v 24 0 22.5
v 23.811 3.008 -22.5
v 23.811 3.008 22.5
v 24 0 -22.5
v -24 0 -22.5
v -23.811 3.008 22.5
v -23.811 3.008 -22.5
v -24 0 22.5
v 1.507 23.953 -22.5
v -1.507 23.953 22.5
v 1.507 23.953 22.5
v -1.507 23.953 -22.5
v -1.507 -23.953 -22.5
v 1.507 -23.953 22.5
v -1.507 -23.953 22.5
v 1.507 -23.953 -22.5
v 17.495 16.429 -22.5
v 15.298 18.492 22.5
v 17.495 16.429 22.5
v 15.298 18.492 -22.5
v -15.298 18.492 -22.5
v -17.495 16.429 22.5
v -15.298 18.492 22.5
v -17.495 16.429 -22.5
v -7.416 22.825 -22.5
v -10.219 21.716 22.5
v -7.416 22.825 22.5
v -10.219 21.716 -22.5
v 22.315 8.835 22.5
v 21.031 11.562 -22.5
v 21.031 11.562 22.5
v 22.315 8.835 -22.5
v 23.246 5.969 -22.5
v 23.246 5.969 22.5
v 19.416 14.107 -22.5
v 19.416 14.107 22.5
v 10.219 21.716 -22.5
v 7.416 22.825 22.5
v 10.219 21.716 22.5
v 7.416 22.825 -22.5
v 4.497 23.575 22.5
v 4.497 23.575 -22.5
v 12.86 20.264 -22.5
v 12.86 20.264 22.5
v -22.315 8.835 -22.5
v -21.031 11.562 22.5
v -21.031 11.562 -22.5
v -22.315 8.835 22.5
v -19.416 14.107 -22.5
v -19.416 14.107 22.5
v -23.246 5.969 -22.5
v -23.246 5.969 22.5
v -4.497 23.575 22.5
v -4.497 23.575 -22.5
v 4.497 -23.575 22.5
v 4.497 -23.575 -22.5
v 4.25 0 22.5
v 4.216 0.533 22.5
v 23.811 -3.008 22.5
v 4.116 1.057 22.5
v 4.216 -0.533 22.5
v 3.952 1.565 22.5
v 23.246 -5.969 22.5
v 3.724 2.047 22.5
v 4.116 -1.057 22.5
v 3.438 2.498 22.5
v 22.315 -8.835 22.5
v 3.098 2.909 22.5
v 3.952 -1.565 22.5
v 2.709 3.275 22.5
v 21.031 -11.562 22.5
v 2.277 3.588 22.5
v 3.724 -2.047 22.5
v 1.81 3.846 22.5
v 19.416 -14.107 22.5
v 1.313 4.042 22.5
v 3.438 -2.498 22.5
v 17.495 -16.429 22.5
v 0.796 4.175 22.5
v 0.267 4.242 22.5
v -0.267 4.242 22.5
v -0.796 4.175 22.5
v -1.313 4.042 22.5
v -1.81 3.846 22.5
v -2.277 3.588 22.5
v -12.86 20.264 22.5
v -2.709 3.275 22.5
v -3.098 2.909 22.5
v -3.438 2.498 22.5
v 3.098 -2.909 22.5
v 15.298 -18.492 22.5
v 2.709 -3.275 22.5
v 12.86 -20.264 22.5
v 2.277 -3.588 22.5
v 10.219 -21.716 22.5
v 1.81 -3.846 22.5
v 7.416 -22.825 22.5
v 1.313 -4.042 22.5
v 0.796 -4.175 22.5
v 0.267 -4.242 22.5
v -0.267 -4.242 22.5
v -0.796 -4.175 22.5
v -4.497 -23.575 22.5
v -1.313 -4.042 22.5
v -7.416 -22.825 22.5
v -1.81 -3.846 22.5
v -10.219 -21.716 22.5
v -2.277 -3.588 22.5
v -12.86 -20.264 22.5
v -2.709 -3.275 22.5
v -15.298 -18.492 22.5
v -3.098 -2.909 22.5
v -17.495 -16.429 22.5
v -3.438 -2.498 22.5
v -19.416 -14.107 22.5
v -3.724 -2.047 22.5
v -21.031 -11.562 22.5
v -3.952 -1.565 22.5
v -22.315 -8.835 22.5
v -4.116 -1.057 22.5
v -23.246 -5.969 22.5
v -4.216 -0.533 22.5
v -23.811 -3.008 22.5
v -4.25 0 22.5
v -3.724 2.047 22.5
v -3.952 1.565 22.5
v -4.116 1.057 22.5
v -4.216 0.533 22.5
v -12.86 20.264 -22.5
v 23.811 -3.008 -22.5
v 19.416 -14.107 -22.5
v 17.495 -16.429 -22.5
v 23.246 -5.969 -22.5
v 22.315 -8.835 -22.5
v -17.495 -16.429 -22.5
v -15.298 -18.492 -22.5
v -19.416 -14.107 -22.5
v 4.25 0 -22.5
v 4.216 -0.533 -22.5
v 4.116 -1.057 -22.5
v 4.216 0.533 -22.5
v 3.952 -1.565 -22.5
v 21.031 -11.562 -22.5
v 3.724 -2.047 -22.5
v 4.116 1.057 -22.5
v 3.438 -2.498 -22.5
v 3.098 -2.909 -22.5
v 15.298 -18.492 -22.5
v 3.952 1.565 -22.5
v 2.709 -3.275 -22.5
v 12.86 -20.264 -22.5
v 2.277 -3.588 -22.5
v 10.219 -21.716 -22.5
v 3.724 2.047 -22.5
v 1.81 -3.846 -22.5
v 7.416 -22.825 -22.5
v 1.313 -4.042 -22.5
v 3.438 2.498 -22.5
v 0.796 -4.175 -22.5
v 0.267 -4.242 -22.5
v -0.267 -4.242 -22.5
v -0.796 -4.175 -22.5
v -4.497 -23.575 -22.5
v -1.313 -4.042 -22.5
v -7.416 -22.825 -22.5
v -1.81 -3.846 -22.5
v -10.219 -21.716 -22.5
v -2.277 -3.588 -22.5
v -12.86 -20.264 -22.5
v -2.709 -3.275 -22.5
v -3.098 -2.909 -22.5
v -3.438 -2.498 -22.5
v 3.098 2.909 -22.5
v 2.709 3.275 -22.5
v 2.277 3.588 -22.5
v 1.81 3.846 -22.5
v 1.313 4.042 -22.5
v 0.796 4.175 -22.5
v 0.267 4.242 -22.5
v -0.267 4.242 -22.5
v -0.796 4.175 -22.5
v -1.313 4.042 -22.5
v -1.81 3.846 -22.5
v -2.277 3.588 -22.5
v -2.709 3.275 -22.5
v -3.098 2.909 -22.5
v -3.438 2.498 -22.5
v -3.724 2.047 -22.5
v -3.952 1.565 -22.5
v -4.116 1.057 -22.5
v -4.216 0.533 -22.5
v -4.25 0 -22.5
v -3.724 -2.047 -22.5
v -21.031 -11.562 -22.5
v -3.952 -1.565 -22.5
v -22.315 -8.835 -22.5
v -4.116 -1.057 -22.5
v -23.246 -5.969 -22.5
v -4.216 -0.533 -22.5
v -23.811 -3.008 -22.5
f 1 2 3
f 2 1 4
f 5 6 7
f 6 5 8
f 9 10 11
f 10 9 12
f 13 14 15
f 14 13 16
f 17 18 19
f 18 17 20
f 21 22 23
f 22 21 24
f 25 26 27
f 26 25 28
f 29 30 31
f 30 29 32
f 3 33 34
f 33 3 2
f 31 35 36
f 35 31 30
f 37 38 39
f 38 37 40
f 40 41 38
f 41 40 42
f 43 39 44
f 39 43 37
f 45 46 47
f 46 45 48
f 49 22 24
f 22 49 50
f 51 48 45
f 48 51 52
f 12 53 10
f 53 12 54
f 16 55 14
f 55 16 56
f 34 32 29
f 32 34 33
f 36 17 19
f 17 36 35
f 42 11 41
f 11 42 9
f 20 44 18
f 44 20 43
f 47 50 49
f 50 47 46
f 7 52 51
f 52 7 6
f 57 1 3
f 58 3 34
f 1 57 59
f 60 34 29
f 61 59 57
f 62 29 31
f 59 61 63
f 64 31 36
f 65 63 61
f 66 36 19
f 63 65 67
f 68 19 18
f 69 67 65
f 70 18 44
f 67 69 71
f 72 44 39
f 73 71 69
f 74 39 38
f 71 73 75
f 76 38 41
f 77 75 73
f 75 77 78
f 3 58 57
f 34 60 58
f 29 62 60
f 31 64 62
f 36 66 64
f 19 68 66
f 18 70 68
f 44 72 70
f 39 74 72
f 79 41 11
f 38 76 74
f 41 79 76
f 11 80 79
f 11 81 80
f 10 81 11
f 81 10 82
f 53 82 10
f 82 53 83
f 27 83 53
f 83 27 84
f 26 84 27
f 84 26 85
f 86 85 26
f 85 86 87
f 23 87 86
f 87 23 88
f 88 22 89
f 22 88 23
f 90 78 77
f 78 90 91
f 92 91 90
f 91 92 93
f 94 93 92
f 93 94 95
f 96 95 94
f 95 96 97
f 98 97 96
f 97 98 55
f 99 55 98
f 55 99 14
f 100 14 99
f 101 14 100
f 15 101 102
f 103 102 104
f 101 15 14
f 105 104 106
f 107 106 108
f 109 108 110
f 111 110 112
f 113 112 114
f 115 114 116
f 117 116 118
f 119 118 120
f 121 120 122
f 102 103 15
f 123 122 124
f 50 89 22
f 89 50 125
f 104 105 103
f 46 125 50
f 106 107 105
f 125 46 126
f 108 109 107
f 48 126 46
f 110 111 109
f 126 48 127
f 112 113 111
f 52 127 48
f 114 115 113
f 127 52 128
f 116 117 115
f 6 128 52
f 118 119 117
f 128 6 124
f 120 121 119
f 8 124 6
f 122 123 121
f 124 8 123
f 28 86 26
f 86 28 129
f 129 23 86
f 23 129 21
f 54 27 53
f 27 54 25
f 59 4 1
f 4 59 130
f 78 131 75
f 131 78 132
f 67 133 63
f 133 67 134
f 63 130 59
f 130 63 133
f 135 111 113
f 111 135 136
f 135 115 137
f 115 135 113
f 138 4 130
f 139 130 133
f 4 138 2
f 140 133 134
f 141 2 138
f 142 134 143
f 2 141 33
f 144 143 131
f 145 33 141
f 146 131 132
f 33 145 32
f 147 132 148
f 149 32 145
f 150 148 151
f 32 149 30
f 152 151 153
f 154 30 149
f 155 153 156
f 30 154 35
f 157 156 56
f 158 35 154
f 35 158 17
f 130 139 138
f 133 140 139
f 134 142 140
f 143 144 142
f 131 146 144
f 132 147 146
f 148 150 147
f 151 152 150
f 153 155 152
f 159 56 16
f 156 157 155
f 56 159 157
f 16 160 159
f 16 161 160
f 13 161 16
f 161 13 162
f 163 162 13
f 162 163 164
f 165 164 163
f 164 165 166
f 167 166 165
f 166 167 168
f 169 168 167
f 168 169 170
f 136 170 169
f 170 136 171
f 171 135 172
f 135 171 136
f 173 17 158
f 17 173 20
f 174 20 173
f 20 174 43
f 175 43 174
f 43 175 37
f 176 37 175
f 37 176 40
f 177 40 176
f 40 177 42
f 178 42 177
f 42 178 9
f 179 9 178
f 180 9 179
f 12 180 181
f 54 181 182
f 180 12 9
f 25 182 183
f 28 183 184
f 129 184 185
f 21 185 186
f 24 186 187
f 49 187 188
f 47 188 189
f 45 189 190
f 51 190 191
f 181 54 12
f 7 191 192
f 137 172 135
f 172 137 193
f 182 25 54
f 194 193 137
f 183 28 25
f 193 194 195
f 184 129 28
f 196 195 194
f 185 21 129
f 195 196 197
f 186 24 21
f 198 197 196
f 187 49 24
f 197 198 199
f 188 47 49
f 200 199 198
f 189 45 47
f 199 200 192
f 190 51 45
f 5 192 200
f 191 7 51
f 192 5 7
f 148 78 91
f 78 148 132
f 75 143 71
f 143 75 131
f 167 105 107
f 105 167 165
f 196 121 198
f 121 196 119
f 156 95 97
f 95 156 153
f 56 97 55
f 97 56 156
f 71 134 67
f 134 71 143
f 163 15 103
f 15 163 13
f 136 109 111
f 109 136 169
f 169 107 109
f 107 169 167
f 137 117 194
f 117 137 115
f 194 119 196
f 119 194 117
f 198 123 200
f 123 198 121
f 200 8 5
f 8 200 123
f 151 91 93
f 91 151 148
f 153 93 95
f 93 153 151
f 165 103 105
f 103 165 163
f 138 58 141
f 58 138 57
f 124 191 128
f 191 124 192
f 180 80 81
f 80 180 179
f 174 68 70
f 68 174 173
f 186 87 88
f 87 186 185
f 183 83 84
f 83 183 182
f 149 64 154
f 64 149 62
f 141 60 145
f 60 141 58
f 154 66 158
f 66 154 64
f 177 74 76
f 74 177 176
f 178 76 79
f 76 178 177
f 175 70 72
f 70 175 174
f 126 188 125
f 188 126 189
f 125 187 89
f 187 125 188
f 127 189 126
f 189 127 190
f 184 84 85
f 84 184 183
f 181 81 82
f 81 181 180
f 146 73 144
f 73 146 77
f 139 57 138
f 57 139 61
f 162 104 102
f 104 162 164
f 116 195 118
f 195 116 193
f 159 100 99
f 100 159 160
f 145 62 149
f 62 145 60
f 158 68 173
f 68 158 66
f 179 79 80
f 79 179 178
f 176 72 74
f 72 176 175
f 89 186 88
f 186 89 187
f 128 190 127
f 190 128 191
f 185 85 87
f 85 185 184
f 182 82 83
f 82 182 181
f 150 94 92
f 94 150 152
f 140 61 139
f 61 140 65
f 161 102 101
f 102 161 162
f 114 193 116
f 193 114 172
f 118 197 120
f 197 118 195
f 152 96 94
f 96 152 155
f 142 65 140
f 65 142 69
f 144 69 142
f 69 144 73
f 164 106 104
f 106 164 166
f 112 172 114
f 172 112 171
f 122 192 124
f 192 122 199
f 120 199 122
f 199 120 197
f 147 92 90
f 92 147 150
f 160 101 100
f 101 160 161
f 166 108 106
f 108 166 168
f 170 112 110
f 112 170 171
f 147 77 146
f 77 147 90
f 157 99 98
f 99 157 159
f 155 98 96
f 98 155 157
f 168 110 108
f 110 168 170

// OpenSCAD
$fn = 50;


difference() {
	union() {
		translate(v = [0, 0, -22.5000000000]) {
			cylinder(h = 45, r = 24.0000000000);
		}
	}
	union() {
		translate(v = [0, 0, -100.0000000000]) {
			cylinder(h = 200, r = 4.2500000000);
		}
	}
}
